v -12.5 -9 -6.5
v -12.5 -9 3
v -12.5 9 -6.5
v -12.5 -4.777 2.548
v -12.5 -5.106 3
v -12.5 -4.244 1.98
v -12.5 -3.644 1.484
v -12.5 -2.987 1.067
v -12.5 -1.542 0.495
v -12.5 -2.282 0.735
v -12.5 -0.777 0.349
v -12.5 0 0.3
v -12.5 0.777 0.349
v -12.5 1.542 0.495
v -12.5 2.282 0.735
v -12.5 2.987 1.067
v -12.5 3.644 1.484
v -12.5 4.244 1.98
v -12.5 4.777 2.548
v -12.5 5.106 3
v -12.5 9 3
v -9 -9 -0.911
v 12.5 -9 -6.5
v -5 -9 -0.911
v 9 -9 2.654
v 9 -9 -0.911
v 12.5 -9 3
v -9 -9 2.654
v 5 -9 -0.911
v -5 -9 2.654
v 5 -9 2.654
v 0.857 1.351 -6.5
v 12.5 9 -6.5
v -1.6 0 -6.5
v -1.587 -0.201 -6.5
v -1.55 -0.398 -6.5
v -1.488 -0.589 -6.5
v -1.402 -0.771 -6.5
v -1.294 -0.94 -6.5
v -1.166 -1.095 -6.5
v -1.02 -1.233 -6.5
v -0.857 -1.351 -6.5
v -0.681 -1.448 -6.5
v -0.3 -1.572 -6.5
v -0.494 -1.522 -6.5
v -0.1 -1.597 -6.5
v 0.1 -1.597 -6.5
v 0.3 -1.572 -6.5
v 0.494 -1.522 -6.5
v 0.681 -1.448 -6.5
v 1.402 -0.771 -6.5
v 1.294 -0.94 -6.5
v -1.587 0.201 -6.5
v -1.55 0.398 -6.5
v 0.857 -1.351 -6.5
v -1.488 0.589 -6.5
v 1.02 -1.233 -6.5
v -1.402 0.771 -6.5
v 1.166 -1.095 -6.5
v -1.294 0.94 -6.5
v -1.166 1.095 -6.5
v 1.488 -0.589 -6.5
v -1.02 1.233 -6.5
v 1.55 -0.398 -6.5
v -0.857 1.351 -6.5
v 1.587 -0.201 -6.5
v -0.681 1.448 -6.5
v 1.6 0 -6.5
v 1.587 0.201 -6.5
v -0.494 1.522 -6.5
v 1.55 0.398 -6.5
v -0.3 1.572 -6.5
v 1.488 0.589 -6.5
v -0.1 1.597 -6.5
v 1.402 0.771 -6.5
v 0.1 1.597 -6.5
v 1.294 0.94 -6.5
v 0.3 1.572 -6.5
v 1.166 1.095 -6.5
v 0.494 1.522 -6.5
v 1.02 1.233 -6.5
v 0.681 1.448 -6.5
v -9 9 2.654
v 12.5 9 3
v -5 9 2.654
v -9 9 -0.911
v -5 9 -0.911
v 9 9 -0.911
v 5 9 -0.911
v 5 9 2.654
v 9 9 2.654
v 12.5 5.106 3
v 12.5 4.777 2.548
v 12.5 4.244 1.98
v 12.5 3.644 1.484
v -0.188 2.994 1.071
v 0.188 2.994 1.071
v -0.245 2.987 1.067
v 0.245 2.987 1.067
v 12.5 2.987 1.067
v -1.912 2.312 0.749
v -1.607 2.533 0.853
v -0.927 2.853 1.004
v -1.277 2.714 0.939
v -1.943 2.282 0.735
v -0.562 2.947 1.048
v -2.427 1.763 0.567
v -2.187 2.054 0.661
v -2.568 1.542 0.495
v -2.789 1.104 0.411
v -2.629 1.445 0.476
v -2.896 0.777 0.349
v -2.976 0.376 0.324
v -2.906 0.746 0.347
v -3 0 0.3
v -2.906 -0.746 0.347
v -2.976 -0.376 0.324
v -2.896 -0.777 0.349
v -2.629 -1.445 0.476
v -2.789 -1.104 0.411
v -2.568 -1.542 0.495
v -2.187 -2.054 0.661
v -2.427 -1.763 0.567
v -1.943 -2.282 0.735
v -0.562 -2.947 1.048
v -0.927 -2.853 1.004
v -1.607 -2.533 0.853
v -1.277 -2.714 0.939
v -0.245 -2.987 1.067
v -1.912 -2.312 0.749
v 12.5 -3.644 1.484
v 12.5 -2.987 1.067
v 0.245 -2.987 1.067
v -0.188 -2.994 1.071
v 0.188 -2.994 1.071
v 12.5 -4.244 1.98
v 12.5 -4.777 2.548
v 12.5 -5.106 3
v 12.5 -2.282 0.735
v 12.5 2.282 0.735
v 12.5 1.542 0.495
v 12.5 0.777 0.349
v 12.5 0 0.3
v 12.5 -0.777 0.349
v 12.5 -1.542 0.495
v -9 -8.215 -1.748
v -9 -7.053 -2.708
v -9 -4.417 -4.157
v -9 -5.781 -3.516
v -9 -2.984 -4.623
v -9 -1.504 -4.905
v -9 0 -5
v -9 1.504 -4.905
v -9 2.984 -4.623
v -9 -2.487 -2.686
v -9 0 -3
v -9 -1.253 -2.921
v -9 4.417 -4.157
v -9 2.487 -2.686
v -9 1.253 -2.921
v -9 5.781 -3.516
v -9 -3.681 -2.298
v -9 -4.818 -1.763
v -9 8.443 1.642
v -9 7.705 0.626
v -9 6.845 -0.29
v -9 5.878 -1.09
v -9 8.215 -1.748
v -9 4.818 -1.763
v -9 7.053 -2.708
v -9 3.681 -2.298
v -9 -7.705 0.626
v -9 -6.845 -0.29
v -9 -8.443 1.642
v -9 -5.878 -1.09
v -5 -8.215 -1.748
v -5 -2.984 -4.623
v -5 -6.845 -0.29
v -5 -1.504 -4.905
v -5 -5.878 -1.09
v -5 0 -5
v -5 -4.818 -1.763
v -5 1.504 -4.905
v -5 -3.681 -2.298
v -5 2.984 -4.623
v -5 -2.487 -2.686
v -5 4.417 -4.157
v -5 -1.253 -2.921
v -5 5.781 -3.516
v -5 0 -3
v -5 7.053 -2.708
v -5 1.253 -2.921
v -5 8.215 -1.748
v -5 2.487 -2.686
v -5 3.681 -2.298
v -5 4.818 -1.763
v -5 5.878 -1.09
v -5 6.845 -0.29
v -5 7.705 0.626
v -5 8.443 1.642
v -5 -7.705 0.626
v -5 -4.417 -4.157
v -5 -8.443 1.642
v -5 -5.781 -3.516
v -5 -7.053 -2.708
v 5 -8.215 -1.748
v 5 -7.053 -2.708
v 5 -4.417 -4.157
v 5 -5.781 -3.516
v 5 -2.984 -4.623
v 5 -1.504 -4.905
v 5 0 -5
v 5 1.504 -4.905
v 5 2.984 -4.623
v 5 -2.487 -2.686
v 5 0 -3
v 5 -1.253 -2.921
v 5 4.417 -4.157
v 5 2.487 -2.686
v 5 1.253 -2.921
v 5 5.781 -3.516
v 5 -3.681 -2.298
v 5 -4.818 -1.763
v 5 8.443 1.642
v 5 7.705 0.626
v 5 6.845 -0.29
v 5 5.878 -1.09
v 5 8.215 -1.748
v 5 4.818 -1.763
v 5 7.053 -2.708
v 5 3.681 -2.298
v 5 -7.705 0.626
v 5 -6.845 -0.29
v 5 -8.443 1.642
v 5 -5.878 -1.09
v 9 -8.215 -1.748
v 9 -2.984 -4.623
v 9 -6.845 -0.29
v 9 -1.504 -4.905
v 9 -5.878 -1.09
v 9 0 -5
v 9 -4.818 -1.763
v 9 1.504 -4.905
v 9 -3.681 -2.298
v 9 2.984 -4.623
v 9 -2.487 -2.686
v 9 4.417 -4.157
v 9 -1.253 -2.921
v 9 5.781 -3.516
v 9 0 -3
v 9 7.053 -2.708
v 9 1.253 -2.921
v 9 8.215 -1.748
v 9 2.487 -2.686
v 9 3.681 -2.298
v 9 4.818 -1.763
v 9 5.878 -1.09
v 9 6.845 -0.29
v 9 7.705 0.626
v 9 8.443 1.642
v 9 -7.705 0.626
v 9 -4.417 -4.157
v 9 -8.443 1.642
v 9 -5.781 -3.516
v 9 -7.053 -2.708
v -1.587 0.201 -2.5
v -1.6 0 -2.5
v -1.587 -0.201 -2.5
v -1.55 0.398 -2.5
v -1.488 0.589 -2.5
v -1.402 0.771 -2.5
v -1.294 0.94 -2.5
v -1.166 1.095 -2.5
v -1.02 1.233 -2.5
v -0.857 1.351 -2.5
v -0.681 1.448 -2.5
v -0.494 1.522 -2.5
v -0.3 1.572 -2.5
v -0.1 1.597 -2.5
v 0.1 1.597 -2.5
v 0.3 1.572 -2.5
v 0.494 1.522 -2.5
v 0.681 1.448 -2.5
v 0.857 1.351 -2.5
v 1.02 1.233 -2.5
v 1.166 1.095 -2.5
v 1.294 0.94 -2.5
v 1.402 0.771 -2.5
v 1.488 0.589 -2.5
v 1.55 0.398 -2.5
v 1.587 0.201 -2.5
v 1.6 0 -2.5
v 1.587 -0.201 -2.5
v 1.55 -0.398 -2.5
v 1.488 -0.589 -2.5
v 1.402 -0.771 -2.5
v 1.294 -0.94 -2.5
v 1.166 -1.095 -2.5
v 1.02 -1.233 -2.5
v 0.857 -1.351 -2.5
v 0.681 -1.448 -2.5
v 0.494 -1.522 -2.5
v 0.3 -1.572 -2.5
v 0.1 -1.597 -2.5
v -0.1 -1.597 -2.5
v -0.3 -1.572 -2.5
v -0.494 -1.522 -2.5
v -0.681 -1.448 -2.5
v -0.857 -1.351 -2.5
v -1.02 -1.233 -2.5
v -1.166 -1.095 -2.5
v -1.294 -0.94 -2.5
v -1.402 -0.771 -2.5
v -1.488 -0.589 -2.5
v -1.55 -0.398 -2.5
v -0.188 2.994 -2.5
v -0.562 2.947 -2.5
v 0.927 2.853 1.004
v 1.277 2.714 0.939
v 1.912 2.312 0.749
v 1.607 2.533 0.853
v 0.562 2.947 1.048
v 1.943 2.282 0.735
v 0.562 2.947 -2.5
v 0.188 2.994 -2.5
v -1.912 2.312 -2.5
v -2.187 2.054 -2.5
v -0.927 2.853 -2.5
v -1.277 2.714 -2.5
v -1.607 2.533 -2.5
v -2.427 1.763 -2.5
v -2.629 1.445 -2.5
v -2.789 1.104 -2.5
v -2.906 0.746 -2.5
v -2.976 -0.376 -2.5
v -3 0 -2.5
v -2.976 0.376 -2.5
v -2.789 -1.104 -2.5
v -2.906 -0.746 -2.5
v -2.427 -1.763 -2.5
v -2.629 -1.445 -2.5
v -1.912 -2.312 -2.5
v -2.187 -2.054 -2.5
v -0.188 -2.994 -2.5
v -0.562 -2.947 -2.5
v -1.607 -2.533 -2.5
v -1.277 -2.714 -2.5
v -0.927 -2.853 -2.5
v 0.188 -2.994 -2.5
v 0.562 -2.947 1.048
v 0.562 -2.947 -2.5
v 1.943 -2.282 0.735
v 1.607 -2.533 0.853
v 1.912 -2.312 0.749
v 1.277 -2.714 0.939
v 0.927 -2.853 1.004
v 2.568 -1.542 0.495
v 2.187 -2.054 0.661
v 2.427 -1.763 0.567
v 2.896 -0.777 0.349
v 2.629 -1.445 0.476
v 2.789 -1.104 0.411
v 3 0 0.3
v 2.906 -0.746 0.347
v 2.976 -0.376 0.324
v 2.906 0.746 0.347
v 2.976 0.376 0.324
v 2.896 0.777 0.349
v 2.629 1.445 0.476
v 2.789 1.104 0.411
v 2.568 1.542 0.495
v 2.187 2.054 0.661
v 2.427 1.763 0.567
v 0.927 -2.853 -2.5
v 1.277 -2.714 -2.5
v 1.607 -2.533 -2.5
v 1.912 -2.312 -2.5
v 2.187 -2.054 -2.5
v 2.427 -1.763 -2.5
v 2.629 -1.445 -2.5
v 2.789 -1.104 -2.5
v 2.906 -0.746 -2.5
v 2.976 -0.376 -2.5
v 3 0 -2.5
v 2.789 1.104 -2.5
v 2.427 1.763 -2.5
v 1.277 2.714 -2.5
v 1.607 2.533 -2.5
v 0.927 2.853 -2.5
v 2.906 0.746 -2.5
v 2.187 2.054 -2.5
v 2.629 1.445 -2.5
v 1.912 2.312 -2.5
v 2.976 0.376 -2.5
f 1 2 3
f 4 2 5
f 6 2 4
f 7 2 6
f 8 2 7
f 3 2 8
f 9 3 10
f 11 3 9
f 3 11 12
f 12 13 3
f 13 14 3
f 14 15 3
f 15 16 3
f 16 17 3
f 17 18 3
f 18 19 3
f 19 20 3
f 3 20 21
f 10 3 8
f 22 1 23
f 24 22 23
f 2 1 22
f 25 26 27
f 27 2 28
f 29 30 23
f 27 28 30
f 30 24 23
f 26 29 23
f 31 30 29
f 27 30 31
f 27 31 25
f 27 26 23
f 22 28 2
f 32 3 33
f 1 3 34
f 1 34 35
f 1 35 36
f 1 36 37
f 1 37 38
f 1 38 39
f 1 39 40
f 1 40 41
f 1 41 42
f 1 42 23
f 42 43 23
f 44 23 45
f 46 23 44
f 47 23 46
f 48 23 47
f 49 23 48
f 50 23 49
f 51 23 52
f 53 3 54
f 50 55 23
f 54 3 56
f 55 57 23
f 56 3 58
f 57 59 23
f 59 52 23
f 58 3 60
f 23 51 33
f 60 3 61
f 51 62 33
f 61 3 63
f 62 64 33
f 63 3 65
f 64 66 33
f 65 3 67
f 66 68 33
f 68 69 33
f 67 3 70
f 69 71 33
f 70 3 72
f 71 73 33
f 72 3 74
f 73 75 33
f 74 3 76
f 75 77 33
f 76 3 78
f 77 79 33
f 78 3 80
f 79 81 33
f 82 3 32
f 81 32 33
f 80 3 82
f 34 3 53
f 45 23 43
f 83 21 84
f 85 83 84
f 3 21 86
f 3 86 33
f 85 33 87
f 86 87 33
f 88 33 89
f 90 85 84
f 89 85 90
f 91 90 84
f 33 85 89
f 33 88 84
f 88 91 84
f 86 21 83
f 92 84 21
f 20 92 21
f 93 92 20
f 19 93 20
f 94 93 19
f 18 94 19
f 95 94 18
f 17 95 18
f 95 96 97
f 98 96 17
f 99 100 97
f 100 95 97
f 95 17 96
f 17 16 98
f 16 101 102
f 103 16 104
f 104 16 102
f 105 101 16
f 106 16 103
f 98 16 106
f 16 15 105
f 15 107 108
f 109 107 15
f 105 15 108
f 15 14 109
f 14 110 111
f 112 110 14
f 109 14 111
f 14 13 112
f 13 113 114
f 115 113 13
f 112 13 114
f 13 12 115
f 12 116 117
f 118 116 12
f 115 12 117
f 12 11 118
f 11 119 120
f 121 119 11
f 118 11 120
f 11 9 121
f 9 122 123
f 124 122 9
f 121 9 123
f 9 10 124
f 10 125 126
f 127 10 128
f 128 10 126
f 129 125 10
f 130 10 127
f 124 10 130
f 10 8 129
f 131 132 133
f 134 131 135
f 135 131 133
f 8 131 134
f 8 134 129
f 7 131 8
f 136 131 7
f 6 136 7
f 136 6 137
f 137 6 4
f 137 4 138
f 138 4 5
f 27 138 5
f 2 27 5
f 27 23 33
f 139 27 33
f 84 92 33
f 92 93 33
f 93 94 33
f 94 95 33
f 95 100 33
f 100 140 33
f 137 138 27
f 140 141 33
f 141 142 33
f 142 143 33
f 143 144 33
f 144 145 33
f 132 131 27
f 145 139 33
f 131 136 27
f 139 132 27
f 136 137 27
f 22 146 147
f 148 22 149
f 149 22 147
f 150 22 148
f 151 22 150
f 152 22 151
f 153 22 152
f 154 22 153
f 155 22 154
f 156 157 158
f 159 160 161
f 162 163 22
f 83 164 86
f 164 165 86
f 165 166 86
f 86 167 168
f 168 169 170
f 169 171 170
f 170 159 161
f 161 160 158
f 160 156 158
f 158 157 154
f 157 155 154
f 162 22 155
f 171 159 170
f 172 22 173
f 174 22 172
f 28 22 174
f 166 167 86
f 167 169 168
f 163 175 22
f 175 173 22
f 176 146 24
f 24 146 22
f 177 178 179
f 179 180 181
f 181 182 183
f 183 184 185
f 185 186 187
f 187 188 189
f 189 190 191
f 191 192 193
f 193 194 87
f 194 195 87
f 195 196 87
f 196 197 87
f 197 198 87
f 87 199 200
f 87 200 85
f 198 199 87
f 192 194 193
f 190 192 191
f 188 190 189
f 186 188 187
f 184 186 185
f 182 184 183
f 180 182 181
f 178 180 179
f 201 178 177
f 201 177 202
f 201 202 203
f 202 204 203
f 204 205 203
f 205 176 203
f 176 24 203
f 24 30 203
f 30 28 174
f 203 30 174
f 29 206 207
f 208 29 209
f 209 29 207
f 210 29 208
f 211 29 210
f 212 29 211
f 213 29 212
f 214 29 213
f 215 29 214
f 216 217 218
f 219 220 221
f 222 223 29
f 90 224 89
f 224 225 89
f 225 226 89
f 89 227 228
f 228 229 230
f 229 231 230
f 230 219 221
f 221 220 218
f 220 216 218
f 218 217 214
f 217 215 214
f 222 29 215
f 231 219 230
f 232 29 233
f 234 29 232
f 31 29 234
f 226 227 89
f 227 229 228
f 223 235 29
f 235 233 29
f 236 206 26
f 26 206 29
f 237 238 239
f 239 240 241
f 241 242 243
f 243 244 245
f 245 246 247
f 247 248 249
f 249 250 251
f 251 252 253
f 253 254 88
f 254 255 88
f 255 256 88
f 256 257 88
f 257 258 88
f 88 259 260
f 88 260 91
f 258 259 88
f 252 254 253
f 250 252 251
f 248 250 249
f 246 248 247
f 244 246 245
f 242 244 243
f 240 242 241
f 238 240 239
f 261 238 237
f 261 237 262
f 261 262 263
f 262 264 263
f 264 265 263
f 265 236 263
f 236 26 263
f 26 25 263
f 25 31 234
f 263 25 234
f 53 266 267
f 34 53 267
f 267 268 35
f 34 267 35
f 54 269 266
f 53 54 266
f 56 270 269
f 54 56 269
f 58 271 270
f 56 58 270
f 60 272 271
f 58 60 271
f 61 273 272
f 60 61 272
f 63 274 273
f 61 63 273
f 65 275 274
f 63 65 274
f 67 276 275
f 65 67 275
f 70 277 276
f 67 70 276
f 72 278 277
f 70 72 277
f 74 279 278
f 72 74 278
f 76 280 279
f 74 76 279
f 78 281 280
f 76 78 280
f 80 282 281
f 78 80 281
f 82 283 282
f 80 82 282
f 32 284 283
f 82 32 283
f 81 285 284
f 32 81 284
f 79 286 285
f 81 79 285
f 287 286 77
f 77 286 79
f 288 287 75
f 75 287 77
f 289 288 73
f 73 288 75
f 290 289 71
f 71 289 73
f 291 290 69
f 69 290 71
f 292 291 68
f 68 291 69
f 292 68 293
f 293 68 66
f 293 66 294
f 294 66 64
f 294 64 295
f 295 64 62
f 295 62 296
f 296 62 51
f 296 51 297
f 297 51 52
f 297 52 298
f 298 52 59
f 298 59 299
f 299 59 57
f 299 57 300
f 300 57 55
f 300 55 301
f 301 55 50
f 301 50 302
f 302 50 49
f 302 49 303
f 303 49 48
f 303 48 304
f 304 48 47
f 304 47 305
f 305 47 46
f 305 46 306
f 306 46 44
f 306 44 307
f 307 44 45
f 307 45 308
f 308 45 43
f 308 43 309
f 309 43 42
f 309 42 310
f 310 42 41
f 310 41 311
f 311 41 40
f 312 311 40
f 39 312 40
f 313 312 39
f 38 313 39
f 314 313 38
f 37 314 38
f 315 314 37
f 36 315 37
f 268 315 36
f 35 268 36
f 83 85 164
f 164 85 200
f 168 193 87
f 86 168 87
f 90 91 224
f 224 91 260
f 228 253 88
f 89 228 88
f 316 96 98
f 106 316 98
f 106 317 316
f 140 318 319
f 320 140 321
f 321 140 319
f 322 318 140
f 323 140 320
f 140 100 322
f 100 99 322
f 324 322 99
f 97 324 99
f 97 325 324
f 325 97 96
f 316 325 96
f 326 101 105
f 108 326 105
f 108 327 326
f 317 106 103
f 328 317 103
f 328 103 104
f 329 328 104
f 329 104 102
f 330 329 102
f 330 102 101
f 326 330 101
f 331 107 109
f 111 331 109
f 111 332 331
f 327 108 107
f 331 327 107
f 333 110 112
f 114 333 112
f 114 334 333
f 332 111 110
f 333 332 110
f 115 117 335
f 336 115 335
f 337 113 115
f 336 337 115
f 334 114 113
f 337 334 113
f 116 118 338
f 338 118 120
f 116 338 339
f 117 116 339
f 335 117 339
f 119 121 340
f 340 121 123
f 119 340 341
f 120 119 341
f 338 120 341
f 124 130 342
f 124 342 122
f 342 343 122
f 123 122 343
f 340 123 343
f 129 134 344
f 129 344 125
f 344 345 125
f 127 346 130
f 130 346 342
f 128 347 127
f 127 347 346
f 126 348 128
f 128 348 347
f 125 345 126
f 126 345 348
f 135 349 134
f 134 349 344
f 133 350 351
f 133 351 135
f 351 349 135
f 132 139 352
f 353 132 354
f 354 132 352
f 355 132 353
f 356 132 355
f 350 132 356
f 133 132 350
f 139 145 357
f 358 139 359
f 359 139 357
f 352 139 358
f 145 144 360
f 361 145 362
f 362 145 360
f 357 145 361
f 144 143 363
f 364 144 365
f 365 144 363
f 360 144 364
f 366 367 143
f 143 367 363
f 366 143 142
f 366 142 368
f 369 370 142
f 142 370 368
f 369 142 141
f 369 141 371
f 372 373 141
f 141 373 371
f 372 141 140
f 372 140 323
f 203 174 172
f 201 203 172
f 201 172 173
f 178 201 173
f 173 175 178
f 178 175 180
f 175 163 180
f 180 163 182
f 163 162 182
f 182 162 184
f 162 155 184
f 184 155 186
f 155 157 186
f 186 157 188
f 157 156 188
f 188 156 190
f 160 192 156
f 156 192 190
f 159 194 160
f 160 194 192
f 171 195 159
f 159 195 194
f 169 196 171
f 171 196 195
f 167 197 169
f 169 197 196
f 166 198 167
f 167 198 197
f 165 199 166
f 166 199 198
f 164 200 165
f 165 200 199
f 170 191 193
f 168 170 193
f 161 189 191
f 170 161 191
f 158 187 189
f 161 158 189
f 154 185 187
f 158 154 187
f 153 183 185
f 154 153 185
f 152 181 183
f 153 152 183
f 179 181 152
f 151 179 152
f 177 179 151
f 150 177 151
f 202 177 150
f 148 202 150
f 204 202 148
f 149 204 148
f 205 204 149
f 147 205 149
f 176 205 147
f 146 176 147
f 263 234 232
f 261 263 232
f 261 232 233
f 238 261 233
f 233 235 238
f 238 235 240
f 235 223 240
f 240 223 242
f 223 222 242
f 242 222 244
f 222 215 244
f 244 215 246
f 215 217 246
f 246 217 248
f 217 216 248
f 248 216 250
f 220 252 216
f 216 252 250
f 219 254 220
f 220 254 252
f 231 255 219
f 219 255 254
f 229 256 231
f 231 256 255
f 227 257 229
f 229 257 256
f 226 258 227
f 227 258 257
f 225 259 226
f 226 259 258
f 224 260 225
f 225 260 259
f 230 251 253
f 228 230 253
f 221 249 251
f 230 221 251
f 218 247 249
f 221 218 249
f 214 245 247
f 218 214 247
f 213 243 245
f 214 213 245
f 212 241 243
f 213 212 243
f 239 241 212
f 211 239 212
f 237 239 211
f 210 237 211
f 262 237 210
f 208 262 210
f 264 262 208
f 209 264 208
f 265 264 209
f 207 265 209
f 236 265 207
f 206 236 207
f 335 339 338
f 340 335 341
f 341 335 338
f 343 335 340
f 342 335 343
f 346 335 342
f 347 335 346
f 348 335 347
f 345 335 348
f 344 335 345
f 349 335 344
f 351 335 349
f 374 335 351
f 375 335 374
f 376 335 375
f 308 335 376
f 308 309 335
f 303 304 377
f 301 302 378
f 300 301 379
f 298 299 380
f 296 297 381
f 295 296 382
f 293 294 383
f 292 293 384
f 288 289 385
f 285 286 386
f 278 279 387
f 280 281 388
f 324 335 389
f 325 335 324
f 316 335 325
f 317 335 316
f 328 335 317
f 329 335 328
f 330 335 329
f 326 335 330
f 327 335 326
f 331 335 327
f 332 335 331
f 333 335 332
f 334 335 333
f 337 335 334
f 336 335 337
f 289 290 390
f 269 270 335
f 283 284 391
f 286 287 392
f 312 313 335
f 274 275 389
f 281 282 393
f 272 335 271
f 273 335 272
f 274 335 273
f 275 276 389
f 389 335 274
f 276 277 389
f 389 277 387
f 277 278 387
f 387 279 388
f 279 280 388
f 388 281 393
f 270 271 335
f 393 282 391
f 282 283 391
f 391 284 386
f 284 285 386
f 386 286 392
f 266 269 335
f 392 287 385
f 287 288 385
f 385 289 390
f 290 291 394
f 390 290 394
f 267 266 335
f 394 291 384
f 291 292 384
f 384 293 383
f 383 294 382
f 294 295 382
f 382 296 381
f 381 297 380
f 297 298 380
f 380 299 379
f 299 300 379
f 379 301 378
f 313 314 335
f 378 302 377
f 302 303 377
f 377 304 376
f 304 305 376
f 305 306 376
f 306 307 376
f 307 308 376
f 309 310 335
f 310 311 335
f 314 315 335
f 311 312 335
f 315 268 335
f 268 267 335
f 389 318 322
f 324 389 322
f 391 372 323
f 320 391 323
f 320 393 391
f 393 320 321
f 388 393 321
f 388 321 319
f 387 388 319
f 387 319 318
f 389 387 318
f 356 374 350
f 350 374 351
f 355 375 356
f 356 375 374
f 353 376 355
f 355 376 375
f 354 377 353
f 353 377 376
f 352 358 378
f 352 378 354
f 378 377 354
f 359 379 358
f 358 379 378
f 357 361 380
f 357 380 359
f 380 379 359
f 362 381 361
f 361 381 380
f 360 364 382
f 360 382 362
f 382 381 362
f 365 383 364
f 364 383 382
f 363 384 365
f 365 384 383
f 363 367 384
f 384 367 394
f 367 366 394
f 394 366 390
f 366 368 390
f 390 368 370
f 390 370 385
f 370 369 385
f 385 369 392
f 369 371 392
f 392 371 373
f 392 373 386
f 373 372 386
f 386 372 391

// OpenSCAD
// file: config.scad
$fn = 50;
screw_distance_x = 60;
screw_distance_y = 40;
wall_thickness = 2.5;

case_width = screw_distance_x*2;
case_length = screw_distance_y*2.25+15;
case_height = 32;

bearing_diameter = 16;
bearing_length = 28;
// main file
include <config.scad>;

laser_mount();

module laser_mount(){
  difference(){ 
   cube([25,18,13],true);
   //translate([0,0,7.5]) cylinder(28,10,10,true);
   translate([0,0,6.5]) rotate([0,90,0]) cylinder(26,6.2,6.2,true);
   cylinder(5,3,3,true);
   cylinder(13.2,1.6,1.6,true);
   translate([0,0,11]) cube([30,20,16],true);
   translate([0,0,16]) rotate([0,90,90]) cylinder(30,1.6,1.6,true);
   translate([0,9,16]) rotate([0,90,90])  cylinder(2,3,3,true,$fn=6);

   translate([7,0,7]) difference(){
    rotate([0,90,0]) cylinder(4,12,12,true);
    rotate([0,90,0]) cylinder(4.1,10,10,true);
   }

   translate([-7,0,7]) difference(){
    rotate([0,90,0]) cylinder(4,12,12,true);
    rotate([0,90,0]) cylinder(4.1,10,10,true);
   }
   	
  }
}
